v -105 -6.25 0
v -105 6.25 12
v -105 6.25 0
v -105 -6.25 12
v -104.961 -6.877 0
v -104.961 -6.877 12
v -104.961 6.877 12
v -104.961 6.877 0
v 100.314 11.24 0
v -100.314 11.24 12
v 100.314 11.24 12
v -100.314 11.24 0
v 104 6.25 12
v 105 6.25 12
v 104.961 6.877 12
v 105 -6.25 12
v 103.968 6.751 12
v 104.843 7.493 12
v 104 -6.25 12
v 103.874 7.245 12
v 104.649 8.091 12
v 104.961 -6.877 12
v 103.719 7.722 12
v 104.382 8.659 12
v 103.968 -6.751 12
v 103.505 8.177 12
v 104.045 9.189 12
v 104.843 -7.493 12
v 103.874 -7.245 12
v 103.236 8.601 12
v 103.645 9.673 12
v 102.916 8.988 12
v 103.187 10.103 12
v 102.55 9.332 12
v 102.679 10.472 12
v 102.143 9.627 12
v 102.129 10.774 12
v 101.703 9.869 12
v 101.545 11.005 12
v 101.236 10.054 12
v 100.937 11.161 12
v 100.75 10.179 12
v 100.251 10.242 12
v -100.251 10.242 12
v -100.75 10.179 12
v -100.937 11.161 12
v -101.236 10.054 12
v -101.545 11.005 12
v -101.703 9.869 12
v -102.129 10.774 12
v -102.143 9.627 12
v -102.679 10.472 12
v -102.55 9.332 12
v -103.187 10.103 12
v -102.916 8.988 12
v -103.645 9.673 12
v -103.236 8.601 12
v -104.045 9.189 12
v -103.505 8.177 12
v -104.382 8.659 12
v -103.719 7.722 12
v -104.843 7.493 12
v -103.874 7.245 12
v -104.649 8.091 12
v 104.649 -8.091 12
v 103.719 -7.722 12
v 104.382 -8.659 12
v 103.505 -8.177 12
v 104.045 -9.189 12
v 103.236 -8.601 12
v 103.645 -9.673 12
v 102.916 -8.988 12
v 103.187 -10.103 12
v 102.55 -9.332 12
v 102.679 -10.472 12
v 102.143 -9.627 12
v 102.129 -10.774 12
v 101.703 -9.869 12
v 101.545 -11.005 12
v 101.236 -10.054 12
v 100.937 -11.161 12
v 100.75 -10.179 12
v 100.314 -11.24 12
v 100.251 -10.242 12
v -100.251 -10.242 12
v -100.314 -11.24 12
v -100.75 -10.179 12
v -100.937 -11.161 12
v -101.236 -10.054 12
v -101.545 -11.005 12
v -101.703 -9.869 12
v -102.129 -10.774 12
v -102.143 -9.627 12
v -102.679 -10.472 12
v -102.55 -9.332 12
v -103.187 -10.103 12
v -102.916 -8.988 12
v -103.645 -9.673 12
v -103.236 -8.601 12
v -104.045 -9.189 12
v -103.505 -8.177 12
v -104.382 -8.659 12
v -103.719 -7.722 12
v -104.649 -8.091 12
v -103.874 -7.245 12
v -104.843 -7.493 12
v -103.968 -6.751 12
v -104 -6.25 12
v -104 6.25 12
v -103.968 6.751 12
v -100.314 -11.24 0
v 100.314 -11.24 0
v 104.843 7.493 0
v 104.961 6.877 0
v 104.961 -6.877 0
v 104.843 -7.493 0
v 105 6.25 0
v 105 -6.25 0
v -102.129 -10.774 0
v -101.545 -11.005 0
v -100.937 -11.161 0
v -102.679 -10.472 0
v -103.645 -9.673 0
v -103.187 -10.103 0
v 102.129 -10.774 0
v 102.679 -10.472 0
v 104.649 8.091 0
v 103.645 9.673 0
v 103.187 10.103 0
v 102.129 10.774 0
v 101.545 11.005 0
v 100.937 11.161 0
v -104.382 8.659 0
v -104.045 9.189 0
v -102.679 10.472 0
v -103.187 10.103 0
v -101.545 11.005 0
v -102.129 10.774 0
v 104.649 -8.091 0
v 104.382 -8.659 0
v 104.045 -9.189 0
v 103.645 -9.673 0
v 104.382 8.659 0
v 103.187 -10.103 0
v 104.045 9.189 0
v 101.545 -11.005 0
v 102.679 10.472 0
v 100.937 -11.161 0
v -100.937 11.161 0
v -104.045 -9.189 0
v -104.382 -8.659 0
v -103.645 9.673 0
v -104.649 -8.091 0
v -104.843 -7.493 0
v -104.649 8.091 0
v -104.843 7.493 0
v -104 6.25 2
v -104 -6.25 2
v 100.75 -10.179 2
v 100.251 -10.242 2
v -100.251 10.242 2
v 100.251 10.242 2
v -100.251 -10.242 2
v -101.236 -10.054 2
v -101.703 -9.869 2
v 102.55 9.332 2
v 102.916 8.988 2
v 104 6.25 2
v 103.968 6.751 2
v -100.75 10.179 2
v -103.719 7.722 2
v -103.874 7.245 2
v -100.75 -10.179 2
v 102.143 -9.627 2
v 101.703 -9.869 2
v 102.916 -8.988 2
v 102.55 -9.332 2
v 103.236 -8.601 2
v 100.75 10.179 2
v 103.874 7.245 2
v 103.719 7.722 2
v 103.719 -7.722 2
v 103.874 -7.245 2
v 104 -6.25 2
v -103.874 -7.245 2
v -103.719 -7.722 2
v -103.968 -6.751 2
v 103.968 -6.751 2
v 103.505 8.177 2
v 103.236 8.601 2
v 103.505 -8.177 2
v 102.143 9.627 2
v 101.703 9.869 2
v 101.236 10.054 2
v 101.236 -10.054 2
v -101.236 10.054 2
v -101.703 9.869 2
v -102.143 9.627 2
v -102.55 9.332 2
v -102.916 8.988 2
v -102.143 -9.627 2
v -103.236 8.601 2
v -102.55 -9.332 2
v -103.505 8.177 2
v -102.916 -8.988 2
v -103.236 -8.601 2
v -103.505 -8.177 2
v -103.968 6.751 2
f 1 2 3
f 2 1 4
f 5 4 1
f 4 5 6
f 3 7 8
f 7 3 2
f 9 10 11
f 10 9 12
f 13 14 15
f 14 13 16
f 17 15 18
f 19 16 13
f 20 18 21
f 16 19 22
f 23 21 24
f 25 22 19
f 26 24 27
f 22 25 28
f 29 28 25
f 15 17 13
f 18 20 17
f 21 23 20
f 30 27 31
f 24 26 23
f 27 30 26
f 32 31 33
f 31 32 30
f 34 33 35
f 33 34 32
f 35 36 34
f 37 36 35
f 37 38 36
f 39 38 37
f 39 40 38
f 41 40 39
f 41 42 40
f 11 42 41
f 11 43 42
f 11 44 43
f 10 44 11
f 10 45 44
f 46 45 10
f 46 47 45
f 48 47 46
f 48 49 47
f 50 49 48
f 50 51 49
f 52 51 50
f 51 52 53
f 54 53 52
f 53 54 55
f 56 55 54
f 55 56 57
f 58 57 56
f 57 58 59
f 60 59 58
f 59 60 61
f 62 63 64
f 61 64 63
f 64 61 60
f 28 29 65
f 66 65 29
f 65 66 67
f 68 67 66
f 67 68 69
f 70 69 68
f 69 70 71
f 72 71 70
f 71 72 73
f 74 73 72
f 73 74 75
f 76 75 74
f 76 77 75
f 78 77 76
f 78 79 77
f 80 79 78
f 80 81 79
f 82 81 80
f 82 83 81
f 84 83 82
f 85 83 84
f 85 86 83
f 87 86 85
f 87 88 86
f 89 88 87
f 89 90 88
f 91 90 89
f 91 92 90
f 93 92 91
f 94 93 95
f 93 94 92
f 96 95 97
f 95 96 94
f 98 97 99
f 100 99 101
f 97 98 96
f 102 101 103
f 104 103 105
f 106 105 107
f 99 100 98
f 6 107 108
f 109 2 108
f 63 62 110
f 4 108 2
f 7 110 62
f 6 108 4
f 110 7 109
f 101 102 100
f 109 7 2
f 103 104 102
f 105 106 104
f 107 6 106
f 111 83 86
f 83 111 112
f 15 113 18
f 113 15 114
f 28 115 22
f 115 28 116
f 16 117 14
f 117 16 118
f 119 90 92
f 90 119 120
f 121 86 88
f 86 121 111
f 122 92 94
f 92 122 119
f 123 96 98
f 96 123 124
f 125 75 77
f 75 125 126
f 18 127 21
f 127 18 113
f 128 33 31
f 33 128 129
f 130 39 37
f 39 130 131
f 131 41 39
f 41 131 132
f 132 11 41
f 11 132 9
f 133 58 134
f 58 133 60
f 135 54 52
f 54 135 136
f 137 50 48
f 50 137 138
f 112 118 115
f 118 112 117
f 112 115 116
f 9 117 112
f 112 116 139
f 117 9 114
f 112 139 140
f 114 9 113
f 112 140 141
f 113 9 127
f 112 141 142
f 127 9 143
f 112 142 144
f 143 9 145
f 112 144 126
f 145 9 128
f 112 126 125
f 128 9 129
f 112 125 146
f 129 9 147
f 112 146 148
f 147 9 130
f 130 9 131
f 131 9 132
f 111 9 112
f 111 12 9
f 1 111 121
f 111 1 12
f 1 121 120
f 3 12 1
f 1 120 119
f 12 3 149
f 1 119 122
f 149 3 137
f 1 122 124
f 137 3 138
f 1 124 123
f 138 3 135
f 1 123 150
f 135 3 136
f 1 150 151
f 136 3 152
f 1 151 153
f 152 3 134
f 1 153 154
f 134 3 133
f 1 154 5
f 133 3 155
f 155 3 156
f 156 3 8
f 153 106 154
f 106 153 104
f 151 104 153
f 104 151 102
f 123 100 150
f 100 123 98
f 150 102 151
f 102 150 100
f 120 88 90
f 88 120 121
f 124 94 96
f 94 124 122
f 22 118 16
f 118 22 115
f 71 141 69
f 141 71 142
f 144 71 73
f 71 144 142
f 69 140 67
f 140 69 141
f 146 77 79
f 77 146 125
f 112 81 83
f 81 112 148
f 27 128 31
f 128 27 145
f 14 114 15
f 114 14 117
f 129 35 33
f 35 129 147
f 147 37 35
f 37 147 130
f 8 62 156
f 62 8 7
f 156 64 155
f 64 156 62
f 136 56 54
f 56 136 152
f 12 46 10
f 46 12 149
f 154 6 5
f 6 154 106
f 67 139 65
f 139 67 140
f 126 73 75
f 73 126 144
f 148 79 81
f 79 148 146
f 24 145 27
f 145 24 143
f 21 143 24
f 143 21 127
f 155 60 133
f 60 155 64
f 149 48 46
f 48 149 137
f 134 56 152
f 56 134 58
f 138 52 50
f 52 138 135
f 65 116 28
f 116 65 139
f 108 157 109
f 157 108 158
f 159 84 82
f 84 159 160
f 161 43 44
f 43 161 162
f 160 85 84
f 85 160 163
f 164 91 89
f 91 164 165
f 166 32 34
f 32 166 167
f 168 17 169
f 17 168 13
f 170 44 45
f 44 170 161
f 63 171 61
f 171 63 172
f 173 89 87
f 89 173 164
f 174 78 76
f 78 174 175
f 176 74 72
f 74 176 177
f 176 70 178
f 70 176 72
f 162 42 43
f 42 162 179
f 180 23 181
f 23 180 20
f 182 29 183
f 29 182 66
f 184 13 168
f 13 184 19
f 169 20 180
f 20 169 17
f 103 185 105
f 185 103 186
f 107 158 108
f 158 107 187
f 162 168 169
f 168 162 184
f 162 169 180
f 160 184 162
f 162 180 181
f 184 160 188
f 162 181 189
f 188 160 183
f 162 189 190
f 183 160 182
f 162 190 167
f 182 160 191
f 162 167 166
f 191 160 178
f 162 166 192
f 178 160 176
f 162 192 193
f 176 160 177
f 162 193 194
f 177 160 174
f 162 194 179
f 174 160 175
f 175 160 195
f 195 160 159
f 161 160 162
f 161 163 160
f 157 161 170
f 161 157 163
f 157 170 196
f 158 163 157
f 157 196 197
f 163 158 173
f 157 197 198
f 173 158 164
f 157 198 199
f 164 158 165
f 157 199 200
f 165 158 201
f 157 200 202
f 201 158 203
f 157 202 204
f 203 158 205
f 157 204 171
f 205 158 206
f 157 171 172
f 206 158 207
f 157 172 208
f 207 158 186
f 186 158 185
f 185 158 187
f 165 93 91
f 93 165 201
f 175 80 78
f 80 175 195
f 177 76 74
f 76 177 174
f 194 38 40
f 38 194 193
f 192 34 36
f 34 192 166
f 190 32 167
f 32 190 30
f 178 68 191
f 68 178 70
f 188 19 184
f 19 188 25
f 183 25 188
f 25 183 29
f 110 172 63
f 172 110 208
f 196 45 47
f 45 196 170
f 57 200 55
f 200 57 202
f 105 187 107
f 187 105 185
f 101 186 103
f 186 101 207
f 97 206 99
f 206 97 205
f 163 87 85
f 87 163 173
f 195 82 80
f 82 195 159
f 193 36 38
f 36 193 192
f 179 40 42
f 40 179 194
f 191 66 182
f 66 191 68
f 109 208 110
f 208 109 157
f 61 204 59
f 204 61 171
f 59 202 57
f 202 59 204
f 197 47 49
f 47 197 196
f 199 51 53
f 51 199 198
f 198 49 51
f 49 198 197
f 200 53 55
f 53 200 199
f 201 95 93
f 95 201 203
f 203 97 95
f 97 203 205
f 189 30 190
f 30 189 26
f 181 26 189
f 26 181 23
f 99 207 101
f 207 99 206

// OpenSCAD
$fn = 50;


difference() {
	union() {
		hull() {
			translate(v = [-100.0000000000, 6.2500000000, 0]) {
				cylinder(h = 12, r = 5);
			}
			translate(v = [100.0000000000, 6.2500000000, 0]) {
				cylinder(h = 12, r = 5);
			}
			translate(v = [-100.0000000000, -6.2500000000, 0]) {
				cylinder(h = 12, r = 5);
			}
			translate(v = [100.0000000000, -6.2500000000, 0]) {
				cylinder(h = 12, r = 5);
			}
		}
	}
	union() {
		translate(v = [0, 0, 2]) {
			hull() {
				translate(v = [-100.0000000000, 6.2500000000, 0]) {
					cylinder(h = 10, r = 4);
				}
				translate(v = [100.0000000000, 6.2500000000, 0]) {
					cylinder(h = 10, r = 4);
				}
				translate(v = [-100.0000000000, -6.2500000000, 0]) {
					cylinder(h = 10, r = 4);
				}
				translate(v = [100.0000000000, -6.2500000000, 0]) {
					cylinder(h = 10, r = 4);
				}
			}
		}
	}
}
